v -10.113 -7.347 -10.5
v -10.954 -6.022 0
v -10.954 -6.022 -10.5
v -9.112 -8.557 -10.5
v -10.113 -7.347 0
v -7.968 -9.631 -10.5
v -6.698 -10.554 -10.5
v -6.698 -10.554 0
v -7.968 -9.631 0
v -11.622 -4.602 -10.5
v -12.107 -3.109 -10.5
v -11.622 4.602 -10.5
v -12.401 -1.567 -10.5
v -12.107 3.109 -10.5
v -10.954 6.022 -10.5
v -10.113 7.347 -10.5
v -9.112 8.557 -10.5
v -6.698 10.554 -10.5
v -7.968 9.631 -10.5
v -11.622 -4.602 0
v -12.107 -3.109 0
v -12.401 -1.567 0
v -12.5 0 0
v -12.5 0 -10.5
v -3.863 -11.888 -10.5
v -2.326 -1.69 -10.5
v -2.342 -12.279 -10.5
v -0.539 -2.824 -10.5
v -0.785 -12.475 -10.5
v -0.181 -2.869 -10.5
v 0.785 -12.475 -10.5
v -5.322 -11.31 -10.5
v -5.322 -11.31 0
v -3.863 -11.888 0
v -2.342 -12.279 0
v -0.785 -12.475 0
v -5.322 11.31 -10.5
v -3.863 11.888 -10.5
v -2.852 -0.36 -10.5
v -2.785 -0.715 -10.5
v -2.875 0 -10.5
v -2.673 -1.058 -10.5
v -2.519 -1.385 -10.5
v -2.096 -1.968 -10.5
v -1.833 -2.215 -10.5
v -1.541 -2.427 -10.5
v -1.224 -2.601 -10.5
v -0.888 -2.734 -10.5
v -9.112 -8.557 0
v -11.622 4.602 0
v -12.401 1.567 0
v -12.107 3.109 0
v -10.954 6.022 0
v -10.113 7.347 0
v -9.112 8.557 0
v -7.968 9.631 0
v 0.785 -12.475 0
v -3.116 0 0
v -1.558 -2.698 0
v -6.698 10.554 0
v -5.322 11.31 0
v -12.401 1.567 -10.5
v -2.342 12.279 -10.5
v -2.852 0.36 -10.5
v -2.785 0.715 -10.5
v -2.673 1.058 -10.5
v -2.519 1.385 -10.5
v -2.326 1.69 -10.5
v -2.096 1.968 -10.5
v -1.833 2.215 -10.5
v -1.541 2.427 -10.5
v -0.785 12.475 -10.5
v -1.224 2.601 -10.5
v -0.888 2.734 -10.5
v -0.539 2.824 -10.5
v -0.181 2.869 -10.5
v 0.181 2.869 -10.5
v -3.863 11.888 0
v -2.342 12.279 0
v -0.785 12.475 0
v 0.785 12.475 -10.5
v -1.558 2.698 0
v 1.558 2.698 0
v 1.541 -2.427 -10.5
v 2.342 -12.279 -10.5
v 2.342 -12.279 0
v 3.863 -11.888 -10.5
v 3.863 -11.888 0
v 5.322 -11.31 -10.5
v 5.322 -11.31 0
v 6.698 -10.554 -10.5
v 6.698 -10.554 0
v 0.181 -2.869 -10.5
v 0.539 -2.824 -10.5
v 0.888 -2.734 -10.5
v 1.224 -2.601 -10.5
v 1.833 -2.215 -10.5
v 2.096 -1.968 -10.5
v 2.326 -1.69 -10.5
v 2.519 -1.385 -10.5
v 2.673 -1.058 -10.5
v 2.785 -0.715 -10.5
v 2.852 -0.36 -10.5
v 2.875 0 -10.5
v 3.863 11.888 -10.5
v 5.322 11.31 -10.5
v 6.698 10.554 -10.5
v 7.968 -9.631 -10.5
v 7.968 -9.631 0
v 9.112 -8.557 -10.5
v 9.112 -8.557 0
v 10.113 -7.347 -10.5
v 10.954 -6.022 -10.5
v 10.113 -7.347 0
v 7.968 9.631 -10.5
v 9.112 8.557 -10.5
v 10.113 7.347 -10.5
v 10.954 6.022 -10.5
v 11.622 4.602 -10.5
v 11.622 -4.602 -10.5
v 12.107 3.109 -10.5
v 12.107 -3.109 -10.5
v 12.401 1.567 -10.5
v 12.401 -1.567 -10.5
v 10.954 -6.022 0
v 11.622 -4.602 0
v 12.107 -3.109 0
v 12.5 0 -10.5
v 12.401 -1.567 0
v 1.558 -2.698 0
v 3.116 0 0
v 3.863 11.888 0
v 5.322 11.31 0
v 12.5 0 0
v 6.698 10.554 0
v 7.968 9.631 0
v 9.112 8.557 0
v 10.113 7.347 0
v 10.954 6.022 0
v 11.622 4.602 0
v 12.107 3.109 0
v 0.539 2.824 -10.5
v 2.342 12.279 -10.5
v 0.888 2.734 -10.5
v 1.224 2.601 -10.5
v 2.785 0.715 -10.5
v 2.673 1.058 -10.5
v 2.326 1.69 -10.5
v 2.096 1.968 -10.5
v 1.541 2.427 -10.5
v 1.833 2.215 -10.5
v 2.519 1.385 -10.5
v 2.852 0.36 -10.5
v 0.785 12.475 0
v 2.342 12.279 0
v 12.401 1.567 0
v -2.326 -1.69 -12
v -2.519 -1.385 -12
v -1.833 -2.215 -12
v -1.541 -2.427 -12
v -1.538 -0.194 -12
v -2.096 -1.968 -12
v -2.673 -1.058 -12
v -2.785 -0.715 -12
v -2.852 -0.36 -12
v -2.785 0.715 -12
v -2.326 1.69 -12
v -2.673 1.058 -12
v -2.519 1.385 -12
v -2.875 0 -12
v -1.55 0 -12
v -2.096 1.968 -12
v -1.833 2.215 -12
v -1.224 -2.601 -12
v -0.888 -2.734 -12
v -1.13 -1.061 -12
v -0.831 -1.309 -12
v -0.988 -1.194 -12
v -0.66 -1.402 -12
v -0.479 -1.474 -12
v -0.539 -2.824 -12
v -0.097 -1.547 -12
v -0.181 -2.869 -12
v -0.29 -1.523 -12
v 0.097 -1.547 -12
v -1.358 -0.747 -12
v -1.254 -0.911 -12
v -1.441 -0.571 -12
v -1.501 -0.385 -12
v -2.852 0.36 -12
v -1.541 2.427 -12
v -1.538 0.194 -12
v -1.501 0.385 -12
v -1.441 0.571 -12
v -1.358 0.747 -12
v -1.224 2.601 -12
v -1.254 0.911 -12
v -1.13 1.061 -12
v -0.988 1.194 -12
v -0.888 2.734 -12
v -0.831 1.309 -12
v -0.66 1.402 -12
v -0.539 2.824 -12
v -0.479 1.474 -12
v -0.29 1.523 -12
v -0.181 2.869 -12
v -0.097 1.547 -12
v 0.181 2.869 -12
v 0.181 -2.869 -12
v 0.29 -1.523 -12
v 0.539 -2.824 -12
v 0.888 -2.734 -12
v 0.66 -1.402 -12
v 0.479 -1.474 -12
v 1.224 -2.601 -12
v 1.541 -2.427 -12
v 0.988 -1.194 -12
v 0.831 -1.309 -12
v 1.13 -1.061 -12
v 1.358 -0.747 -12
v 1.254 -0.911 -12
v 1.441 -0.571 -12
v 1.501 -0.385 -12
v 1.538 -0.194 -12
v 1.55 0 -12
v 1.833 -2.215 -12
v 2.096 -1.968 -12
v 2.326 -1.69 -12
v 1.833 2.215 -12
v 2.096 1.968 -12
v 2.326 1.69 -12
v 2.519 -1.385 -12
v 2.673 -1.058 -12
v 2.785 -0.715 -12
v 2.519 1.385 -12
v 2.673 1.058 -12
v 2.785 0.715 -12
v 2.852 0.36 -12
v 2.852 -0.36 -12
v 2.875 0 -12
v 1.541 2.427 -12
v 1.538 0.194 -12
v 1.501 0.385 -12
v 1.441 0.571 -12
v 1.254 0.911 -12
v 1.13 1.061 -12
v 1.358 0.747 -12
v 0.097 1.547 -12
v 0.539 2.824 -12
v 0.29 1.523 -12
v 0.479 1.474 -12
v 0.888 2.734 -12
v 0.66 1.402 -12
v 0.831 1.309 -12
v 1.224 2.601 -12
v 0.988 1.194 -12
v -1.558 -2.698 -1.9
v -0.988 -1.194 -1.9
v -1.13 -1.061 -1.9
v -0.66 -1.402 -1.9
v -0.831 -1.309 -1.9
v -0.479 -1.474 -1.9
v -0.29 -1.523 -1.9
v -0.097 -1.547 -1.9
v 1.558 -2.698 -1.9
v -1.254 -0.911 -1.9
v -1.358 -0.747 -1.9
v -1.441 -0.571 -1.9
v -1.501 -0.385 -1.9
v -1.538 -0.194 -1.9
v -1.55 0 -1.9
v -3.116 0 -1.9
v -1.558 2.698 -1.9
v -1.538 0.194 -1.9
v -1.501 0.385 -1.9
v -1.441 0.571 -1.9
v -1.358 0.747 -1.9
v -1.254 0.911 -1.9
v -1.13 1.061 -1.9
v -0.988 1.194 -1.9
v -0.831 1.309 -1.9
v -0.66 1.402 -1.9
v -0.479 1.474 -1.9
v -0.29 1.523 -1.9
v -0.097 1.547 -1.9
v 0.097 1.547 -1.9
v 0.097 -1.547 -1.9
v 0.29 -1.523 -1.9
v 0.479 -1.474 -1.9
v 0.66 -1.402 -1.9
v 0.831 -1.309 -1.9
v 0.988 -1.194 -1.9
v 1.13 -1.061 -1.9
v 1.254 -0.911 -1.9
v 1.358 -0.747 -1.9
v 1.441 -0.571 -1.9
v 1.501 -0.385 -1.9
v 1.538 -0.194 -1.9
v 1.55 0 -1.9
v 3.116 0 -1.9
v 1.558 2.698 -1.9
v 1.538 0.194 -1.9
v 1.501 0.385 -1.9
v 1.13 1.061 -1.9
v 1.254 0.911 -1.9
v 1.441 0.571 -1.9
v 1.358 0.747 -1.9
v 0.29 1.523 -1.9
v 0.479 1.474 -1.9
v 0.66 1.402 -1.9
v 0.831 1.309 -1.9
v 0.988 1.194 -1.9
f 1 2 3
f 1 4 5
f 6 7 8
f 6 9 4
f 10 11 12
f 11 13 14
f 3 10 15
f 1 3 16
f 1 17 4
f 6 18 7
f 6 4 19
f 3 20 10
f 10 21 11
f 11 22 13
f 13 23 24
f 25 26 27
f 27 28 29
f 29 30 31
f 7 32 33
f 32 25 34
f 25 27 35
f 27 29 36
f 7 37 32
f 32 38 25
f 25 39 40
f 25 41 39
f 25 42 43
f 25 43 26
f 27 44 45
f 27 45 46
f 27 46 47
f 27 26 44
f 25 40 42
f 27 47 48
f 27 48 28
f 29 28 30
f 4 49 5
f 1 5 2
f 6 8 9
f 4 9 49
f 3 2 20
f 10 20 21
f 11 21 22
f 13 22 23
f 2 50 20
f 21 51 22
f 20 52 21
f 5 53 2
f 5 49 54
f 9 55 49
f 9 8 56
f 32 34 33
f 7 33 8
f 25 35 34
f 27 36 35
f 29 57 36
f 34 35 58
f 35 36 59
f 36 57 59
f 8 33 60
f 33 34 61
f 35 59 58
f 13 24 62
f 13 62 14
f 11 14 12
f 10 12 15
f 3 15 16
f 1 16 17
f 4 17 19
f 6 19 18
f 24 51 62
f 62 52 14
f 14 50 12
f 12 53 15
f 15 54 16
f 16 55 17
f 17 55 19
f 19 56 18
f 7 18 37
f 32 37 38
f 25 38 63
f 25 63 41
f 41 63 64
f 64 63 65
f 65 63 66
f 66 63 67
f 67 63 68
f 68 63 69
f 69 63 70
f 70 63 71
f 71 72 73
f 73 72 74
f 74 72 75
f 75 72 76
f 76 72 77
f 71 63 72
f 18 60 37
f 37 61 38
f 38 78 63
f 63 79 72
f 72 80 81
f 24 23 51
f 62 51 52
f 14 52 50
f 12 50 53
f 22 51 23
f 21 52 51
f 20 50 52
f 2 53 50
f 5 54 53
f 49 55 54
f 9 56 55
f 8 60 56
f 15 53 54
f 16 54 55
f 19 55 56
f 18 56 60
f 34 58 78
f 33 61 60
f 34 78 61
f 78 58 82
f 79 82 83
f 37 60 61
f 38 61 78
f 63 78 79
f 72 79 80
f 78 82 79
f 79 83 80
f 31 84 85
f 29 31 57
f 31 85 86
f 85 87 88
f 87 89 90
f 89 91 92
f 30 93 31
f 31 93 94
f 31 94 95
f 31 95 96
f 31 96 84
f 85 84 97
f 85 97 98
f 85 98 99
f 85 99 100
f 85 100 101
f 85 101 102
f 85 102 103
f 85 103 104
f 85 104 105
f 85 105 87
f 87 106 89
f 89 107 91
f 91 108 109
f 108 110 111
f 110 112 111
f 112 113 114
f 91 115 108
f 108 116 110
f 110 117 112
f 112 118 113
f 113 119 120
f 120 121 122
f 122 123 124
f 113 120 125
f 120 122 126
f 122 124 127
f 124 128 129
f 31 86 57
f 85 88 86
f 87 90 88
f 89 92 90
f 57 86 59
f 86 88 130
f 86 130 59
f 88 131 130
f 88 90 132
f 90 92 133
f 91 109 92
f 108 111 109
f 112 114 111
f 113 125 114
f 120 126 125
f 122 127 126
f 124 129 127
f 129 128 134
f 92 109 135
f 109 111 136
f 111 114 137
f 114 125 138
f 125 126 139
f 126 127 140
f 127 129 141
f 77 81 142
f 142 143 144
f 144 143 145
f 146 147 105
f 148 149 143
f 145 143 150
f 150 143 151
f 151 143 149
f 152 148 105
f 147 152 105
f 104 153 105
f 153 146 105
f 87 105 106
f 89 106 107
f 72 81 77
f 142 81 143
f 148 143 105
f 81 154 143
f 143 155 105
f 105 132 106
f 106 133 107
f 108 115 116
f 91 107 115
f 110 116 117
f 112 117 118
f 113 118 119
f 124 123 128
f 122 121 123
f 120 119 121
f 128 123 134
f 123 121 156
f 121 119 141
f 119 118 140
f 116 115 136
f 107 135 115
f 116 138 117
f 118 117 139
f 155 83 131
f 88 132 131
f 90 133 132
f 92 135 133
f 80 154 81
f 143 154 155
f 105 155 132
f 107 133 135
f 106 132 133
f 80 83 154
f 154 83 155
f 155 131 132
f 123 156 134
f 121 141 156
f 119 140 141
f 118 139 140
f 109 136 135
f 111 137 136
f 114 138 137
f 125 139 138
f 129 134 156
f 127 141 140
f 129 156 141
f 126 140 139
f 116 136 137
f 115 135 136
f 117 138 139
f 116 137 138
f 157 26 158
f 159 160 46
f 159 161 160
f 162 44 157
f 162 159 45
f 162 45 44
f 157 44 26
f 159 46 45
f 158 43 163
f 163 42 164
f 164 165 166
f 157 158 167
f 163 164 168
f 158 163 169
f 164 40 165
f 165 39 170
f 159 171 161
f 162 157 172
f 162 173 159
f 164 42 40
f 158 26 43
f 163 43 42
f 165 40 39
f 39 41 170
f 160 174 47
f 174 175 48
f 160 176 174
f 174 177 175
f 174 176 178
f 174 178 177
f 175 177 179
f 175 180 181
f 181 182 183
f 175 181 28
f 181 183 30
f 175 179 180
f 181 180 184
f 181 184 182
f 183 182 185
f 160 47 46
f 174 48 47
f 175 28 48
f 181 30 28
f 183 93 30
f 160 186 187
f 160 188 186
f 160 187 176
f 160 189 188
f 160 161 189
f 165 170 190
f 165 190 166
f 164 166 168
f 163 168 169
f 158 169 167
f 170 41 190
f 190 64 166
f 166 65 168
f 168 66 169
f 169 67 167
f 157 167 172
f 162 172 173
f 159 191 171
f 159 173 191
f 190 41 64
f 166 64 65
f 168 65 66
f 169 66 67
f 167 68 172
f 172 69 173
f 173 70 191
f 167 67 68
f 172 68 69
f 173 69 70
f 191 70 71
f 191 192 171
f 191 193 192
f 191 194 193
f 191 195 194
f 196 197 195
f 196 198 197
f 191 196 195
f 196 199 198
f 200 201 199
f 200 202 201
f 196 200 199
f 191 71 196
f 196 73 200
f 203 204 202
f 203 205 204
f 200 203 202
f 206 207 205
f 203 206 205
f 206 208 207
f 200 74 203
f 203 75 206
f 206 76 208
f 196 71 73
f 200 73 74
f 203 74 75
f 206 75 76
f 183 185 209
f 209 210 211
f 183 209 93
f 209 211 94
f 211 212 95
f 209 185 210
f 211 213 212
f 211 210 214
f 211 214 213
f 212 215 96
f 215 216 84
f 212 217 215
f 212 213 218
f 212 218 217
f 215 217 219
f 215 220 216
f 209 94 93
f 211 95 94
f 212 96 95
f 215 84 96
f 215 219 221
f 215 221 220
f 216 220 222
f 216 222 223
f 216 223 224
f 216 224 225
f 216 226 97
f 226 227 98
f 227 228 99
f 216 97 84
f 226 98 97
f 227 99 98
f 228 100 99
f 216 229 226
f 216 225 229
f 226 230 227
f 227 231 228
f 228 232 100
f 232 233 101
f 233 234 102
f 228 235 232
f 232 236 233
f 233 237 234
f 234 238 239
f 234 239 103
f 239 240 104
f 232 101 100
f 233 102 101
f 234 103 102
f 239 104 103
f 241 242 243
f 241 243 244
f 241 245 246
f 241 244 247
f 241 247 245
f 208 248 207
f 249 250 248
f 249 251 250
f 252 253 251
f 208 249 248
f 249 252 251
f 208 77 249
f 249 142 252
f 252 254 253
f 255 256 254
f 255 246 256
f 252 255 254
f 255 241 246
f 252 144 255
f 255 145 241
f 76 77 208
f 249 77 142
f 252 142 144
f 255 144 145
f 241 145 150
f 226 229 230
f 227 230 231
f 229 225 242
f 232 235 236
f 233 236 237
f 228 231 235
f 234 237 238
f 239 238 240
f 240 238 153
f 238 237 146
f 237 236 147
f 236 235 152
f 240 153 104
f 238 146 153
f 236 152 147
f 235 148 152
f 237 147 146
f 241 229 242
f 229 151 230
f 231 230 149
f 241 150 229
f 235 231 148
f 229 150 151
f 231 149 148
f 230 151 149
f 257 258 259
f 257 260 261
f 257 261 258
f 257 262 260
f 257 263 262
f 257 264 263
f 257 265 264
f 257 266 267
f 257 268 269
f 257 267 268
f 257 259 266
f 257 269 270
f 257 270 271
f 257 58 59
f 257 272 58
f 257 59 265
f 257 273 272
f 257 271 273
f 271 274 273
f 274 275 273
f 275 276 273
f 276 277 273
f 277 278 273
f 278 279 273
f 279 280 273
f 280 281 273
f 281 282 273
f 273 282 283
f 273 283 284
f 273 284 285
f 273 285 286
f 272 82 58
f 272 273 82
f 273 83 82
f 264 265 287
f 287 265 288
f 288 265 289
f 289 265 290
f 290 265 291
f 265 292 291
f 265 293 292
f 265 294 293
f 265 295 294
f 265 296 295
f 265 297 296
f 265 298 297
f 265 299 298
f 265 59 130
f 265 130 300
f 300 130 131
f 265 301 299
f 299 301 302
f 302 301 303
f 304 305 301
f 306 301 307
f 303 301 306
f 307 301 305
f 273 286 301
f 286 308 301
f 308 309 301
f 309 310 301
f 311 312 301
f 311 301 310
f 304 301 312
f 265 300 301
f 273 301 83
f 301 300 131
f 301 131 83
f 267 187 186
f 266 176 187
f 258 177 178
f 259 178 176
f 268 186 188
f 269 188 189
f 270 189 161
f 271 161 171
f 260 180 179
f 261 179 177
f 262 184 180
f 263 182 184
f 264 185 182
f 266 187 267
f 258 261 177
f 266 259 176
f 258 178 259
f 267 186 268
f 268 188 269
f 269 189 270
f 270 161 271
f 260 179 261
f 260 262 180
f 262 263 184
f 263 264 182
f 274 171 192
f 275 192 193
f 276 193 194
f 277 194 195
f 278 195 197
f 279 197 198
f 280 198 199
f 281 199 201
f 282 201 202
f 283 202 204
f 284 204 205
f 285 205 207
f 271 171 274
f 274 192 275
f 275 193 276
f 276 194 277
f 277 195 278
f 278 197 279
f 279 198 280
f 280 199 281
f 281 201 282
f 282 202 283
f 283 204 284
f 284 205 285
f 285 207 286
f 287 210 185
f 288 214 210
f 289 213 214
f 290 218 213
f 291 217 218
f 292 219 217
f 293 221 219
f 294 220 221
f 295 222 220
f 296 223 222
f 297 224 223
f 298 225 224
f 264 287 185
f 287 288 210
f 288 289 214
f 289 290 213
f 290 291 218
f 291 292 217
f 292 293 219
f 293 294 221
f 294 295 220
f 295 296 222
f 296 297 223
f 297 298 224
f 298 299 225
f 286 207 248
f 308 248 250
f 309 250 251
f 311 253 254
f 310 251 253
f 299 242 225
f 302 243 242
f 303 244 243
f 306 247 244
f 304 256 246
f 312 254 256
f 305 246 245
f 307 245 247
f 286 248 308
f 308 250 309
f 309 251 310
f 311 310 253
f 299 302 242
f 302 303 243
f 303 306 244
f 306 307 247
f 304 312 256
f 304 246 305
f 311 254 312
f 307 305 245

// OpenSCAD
$fn = 50;

difference() {
	union() {
		translate(v = [0, 0, -10.5]) {
			cylinder(h = 10.5, r = 12.5);
		}
		#translate(v = [0, 0, -12.0]) {
			cylinder(h = 12, r = 2.875);
		}
	}
	union() {
		translate(v = [0, 0, 0]) {
			rotate(a = [0, 0, 0]) {
				difference() {
					union() {
						translate(v = [0, 0, -1.9]) {
							linear_extrude(height = 1.9) {
								polygon(points = [[3.1158, 0.0], [1.5579000000000005, 2.698361953111554], [-1.5578999999999994, 2.6983619531115544], [-3.1158, 3.815754496783323e-16], [-1.5579000000000014, -2.6983619531115535], [1.557899999999998, -2.6983619531115552]]);
							}
						}
					}
					union();
				}
			}
		}
		#translate(v = [0, 0, -100.0]) {
			cylinder(h = 200, r = 1.55);
		}
	}
}
